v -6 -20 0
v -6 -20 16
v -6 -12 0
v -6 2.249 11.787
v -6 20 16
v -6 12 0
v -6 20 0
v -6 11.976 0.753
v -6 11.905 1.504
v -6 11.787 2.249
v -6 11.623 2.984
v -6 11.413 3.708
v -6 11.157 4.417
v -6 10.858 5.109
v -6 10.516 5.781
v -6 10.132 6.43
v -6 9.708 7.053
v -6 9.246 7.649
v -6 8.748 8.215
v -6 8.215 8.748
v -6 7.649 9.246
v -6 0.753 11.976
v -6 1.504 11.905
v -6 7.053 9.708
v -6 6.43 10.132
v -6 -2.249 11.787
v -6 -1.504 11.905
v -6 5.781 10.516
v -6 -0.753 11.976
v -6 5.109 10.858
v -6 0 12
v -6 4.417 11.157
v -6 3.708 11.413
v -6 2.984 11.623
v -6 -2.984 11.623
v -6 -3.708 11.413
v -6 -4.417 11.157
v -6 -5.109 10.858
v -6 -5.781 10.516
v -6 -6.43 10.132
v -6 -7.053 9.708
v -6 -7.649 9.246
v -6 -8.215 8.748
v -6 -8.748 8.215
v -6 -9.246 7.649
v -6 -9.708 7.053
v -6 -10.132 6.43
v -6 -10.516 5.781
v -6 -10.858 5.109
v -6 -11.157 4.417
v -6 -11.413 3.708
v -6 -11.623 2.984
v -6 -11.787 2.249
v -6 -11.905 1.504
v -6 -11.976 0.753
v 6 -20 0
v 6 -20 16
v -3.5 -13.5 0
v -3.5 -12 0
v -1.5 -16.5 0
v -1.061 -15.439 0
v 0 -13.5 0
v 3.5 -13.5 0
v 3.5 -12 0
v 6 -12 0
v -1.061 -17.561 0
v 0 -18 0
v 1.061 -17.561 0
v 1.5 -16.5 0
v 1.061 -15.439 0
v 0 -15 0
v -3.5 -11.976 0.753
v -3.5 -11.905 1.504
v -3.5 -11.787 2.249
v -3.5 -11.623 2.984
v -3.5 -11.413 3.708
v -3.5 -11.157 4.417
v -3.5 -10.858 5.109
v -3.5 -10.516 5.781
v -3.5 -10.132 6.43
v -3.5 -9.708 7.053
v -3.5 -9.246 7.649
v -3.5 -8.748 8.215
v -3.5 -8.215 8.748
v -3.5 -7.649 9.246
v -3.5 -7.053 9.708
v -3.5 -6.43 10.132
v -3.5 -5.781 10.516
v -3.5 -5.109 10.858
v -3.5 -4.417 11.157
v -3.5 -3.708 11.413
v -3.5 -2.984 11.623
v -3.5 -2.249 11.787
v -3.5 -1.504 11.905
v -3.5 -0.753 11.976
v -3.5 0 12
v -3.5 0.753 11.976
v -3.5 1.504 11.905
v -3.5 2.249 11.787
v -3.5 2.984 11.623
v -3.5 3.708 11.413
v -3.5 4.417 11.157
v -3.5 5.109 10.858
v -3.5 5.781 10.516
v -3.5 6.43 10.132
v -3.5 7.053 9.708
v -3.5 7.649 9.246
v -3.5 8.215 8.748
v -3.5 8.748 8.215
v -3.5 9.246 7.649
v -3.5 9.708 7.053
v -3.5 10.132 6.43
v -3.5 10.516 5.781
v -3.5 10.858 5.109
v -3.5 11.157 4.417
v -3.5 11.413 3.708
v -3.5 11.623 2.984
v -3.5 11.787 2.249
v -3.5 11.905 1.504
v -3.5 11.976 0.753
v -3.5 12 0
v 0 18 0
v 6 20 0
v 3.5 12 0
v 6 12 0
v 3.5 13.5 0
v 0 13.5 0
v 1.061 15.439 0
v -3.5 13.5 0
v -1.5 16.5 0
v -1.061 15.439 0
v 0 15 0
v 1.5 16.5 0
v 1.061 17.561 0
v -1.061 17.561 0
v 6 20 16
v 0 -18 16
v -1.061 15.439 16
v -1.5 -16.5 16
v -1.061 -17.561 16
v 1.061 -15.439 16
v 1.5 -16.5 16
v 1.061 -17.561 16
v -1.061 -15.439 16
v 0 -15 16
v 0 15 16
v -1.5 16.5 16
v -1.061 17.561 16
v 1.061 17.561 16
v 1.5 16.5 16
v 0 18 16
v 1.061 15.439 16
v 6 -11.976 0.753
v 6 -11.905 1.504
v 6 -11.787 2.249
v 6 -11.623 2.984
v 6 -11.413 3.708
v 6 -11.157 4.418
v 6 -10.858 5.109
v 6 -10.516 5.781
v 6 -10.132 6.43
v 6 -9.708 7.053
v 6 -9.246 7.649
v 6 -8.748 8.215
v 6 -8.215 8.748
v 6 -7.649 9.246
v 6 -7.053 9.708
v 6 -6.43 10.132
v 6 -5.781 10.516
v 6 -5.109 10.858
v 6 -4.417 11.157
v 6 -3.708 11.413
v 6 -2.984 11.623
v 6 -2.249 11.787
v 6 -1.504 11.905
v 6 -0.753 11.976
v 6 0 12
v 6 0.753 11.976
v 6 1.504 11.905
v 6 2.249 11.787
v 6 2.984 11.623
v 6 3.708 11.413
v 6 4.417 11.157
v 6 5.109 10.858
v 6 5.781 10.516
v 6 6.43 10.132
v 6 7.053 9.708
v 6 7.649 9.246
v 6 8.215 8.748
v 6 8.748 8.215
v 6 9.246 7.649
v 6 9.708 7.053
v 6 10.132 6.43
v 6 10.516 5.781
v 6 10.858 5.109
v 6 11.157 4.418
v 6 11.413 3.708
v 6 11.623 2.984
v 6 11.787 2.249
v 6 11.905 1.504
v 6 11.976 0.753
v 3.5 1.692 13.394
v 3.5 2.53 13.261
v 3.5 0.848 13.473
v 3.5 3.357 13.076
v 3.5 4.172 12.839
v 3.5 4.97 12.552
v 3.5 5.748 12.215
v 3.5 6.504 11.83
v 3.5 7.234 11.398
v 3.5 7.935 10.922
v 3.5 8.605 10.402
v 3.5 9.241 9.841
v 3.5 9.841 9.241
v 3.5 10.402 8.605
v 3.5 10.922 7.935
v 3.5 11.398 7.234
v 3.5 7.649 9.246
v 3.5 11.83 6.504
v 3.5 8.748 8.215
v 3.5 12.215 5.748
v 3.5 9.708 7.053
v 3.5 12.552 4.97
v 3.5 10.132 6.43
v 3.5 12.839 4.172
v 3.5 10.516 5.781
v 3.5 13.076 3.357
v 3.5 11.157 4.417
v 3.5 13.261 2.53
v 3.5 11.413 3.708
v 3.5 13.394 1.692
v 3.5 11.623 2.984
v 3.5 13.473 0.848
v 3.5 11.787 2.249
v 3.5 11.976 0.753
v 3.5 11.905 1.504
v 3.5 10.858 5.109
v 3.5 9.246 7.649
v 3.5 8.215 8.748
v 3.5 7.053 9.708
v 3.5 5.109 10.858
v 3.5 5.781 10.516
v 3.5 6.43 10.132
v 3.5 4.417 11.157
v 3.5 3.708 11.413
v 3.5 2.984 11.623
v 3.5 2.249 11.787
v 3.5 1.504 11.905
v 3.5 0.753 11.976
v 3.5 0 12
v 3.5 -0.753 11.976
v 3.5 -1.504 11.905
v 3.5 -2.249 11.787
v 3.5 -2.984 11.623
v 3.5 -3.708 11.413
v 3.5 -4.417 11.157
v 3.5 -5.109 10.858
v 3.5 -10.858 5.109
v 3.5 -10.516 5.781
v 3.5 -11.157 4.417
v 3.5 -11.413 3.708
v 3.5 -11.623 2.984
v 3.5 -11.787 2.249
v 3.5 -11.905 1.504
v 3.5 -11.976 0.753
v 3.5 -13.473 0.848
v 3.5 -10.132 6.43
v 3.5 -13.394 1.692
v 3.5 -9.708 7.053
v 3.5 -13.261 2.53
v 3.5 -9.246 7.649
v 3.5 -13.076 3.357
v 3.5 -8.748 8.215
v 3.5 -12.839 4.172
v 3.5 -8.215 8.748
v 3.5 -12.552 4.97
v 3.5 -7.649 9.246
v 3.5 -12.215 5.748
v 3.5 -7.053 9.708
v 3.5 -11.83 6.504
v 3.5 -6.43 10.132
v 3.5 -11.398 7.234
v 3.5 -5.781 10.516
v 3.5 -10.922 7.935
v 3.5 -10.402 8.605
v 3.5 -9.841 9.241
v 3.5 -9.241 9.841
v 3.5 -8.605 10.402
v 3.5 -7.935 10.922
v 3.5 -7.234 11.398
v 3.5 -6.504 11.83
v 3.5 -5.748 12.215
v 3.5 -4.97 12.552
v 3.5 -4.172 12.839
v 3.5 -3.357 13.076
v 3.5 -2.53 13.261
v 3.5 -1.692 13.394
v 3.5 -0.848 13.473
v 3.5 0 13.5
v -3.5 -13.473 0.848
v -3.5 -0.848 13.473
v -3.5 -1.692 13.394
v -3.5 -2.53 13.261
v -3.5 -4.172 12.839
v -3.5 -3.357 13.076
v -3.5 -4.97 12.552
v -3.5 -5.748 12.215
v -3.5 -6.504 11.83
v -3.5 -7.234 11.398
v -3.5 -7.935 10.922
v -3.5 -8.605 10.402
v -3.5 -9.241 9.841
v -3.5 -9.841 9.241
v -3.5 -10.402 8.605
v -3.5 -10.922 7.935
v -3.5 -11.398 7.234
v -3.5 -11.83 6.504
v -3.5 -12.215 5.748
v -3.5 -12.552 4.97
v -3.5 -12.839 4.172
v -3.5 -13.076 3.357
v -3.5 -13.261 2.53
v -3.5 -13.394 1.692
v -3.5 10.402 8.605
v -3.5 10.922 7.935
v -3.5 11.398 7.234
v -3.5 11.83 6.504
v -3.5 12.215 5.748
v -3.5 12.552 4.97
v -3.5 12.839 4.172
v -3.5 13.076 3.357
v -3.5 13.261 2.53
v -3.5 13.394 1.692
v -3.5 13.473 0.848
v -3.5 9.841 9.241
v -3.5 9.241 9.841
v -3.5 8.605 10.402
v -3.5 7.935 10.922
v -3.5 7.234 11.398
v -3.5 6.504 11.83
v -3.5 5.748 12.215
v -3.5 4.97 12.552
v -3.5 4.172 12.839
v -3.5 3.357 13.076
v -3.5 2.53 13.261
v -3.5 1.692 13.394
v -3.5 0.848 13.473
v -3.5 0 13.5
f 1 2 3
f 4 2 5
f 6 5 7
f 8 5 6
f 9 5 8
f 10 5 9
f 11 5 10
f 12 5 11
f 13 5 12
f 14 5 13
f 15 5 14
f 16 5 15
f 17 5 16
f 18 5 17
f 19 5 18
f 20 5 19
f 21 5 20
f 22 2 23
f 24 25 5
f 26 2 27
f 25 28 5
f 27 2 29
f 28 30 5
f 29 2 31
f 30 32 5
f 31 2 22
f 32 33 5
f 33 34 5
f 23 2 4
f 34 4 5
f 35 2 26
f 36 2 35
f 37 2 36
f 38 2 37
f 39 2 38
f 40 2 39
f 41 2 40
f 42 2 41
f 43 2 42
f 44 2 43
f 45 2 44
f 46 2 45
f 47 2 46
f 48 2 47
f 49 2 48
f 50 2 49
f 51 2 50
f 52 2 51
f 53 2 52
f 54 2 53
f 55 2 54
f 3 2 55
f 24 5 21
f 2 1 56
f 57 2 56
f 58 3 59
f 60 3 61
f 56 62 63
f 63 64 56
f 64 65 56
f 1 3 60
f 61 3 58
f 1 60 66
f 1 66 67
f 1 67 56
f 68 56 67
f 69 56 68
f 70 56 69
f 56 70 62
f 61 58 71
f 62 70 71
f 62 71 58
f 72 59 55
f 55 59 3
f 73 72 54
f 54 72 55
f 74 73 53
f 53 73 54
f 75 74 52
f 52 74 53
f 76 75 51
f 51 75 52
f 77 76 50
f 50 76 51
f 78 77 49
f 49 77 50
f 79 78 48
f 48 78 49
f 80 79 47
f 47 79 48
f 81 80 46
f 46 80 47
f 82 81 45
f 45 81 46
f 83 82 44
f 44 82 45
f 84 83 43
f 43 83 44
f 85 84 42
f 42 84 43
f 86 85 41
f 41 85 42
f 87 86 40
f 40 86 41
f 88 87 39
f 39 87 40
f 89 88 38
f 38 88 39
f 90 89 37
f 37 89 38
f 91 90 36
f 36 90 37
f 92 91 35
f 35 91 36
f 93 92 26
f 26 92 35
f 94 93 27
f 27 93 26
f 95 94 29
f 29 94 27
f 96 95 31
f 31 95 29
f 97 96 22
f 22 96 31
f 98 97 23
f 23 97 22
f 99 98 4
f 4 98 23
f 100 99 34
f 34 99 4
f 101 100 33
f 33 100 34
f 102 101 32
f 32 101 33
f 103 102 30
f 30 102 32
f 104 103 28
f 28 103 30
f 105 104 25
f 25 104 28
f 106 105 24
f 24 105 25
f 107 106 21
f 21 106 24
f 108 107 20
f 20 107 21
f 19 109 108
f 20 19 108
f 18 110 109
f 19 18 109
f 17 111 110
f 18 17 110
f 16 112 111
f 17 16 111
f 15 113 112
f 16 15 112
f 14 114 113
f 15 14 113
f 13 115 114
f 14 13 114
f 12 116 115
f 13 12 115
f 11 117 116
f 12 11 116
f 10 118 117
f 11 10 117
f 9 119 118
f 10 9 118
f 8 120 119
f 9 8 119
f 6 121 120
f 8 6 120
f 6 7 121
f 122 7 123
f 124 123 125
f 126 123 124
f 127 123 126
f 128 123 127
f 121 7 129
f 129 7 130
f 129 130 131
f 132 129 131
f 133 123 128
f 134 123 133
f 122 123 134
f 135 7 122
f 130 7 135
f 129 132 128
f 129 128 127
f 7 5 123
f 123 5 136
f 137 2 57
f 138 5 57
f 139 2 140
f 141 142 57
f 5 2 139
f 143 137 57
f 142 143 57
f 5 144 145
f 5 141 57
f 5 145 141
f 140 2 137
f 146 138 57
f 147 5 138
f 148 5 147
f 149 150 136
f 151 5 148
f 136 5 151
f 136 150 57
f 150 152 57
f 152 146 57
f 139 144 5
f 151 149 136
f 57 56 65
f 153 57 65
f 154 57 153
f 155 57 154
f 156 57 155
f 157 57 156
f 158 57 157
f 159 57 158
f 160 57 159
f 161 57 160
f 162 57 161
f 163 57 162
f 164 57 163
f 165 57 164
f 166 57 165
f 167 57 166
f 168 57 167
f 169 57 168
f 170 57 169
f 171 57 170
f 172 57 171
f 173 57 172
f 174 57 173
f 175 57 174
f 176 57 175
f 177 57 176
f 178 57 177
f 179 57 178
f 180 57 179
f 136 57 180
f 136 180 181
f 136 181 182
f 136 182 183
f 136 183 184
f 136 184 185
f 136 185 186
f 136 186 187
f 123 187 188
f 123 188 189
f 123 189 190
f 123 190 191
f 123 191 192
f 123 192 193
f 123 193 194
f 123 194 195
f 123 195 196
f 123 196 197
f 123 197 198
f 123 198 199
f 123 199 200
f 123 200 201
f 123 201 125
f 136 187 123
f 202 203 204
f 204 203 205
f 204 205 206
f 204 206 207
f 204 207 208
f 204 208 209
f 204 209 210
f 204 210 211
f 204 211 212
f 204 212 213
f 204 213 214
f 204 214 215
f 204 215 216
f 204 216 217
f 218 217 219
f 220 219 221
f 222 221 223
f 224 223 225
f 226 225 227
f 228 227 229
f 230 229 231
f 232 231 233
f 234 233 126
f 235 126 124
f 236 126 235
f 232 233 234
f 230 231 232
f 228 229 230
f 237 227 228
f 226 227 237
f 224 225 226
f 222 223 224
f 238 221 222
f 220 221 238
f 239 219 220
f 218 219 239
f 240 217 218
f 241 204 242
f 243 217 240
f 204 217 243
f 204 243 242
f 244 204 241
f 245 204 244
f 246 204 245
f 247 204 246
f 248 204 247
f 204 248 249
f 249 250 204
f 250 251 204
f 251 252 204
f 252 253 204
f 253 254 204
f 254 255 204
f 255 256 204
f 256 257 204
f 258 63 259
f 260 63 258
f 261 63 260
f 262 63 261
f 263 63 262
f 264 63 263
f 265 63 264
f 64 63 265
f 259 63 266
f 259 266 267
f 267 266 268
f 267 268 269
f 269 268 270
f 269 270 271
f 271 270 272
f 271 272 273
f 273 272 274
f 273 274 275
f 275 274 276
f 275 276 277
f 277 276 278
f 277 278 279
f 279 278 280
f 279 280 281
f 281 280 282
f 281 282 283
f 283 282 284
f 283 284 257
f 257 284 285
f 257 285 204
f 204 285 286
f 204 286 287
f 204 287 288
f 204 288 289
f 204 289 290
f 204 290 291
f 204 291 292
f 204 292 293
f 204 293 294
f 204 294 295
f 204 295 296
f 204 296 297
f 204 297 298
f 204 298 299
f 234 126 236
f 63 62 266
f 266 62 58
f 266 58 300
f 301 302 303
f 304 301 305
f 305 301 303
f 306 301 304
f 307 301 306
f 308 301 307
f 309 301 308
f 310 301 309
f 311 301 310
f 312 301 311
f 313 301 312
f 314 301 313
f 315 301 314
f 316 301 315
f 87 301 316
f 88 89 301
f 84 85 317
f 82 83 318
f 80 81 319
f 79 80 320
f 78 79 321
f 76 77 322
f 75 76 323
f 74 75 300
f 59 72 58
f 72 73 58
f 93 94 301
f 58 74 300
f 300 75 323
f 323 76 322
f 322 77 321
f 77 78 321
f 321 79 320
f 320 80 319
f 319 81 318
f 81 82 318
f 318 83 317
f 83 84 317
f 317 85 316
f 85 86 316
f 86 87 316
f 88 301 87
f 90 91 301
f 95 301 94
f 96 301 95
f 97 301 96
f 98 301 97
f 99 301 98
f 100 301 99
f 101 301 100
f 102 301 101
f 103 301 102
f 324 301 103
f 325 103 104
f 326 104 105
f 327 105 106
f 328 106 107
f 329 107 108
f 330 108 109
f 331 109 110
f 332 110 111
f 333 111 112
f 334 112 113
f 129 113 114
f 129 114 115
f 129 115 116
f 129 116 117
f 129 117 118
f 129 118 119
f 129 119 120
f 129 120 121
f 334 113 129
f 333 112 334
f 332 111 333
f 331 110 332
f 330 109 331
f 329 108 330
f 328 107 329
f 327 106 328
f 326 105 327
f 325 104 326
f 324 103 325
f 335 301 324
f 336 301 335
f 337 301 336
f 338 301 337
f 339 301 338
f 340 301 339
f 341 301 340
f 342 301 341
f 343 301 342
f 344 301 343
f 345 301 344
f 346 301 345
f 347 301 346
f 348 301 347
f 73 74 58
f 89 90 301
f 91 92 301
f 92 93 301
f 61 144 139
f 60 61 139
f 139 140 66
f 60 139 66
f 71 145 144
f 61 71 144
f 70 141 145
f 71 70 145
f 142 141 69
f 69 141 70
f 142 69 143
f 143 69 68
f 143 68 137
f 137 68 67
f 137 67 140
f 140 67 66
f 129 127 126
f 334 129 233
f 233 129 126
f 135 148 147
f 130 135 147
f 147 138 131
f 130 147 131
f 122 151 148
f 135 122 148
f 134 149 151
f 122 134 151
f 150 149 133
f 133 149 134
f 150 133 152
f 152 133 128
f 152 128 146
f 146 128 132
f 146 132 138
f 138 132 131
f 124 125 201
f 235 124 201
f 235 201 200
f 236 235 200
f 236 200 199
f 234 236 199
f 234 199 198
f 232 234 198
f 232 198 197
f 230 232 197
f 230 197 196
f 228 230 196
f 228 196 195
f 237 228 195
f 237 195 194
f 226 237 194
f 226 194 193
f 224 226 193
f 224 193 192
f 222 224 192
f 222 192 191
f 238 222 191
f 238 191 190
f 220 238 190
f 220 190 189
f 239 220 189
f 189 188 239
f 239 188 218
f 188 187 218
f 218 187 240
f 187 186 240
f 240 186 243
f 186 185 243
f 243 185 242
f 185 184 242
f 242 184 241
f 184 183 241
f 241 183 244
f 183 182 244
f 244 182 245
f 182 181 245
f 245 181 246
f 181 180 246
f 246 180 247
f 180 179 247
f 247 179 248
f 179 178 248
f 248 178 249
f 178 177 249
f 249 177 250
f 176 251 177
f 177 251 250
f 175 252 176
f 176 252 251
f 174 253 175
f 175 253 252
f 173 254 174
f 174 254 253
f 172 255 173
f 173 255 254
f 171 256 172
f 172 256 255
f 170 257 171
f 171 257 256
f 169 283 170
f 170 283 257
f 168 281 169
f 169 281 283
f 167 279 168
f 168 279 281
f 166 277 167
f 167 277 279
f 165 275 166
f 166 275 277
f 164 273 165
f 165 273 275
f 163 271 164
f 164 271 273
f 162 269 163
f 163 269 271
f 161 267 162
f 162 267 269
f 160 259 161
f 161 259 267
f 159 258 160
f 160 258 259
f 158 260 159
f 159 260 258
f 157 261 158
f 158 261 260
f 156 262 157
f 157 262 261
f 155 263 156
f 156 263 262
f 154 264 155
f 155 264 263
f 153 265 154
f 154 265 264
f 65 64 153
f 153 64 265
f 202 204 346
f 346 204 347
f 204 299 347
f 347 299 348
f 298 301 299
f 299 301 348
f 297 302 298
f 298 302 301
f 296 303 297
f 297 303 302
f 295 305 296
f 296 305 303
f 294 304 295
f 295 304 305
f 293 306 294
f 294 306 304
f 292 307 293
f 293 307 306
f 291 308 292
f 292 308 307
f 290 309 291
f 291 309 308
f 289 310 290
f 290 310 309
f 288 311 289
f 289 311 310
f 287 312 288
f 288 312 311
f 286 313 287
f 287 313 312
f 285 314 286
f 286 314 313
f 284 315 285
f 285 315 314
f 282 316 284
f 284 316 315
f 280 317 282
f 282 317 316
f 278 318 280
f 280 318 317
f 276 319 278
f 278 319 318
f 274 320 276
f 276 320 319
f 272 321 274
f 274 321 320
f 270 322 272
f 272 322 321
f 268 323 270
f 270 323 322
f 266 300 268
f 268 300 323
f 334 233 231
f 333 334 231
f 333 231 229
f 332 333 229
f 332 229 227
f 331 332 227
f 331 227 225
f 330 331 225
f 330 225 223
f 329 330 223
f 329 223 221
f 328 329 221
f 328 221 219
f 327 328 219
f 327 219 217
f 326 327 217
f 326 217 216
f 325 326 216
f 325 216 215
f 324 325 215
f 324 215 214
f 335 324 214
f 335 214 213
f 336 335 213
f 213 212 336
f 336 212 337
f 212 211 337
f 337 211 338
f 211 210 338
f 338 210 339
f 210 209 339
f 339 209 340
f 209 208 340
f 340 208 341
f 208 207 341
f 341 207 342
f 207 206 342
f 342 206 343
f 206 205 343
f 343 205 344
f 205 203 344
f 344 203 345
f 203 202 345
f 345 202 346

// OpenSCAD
module 532nmPassFilter(){
	rotate([0,90,0]) {
		cylinder(r=13.25, h=6,$fn=100,center=true);
	}
}

module 532nmPassFilterTop(){
	difference(){
		//filterHolderTop
		translate([0,0,8]) color([0.8,1,.6]) cube(size=[12,40,16],center=true);	
		//filterHole
		rotate([0,90,0]) {
			cylinder(r=13.5, h=7,$fn=100,center=true);
		}
		rotate([0,90,0]) {
			cylinder(r=12, h=20,$fn=100,center=true);
		}
		//screwHoles
		translate([0,16.5,8]) color([1,0,0]) cylinder(h=17,r=1.5,$fn=8,center=true);
		translate([0,-16.5,8]) color([1,0,0]) cylinder(h=17,r=1.5,$fn=8,center=true);
	}
}
translate([0,0,0]){
	532nmPassFilterTop();
}

//532nmPassFilter();
